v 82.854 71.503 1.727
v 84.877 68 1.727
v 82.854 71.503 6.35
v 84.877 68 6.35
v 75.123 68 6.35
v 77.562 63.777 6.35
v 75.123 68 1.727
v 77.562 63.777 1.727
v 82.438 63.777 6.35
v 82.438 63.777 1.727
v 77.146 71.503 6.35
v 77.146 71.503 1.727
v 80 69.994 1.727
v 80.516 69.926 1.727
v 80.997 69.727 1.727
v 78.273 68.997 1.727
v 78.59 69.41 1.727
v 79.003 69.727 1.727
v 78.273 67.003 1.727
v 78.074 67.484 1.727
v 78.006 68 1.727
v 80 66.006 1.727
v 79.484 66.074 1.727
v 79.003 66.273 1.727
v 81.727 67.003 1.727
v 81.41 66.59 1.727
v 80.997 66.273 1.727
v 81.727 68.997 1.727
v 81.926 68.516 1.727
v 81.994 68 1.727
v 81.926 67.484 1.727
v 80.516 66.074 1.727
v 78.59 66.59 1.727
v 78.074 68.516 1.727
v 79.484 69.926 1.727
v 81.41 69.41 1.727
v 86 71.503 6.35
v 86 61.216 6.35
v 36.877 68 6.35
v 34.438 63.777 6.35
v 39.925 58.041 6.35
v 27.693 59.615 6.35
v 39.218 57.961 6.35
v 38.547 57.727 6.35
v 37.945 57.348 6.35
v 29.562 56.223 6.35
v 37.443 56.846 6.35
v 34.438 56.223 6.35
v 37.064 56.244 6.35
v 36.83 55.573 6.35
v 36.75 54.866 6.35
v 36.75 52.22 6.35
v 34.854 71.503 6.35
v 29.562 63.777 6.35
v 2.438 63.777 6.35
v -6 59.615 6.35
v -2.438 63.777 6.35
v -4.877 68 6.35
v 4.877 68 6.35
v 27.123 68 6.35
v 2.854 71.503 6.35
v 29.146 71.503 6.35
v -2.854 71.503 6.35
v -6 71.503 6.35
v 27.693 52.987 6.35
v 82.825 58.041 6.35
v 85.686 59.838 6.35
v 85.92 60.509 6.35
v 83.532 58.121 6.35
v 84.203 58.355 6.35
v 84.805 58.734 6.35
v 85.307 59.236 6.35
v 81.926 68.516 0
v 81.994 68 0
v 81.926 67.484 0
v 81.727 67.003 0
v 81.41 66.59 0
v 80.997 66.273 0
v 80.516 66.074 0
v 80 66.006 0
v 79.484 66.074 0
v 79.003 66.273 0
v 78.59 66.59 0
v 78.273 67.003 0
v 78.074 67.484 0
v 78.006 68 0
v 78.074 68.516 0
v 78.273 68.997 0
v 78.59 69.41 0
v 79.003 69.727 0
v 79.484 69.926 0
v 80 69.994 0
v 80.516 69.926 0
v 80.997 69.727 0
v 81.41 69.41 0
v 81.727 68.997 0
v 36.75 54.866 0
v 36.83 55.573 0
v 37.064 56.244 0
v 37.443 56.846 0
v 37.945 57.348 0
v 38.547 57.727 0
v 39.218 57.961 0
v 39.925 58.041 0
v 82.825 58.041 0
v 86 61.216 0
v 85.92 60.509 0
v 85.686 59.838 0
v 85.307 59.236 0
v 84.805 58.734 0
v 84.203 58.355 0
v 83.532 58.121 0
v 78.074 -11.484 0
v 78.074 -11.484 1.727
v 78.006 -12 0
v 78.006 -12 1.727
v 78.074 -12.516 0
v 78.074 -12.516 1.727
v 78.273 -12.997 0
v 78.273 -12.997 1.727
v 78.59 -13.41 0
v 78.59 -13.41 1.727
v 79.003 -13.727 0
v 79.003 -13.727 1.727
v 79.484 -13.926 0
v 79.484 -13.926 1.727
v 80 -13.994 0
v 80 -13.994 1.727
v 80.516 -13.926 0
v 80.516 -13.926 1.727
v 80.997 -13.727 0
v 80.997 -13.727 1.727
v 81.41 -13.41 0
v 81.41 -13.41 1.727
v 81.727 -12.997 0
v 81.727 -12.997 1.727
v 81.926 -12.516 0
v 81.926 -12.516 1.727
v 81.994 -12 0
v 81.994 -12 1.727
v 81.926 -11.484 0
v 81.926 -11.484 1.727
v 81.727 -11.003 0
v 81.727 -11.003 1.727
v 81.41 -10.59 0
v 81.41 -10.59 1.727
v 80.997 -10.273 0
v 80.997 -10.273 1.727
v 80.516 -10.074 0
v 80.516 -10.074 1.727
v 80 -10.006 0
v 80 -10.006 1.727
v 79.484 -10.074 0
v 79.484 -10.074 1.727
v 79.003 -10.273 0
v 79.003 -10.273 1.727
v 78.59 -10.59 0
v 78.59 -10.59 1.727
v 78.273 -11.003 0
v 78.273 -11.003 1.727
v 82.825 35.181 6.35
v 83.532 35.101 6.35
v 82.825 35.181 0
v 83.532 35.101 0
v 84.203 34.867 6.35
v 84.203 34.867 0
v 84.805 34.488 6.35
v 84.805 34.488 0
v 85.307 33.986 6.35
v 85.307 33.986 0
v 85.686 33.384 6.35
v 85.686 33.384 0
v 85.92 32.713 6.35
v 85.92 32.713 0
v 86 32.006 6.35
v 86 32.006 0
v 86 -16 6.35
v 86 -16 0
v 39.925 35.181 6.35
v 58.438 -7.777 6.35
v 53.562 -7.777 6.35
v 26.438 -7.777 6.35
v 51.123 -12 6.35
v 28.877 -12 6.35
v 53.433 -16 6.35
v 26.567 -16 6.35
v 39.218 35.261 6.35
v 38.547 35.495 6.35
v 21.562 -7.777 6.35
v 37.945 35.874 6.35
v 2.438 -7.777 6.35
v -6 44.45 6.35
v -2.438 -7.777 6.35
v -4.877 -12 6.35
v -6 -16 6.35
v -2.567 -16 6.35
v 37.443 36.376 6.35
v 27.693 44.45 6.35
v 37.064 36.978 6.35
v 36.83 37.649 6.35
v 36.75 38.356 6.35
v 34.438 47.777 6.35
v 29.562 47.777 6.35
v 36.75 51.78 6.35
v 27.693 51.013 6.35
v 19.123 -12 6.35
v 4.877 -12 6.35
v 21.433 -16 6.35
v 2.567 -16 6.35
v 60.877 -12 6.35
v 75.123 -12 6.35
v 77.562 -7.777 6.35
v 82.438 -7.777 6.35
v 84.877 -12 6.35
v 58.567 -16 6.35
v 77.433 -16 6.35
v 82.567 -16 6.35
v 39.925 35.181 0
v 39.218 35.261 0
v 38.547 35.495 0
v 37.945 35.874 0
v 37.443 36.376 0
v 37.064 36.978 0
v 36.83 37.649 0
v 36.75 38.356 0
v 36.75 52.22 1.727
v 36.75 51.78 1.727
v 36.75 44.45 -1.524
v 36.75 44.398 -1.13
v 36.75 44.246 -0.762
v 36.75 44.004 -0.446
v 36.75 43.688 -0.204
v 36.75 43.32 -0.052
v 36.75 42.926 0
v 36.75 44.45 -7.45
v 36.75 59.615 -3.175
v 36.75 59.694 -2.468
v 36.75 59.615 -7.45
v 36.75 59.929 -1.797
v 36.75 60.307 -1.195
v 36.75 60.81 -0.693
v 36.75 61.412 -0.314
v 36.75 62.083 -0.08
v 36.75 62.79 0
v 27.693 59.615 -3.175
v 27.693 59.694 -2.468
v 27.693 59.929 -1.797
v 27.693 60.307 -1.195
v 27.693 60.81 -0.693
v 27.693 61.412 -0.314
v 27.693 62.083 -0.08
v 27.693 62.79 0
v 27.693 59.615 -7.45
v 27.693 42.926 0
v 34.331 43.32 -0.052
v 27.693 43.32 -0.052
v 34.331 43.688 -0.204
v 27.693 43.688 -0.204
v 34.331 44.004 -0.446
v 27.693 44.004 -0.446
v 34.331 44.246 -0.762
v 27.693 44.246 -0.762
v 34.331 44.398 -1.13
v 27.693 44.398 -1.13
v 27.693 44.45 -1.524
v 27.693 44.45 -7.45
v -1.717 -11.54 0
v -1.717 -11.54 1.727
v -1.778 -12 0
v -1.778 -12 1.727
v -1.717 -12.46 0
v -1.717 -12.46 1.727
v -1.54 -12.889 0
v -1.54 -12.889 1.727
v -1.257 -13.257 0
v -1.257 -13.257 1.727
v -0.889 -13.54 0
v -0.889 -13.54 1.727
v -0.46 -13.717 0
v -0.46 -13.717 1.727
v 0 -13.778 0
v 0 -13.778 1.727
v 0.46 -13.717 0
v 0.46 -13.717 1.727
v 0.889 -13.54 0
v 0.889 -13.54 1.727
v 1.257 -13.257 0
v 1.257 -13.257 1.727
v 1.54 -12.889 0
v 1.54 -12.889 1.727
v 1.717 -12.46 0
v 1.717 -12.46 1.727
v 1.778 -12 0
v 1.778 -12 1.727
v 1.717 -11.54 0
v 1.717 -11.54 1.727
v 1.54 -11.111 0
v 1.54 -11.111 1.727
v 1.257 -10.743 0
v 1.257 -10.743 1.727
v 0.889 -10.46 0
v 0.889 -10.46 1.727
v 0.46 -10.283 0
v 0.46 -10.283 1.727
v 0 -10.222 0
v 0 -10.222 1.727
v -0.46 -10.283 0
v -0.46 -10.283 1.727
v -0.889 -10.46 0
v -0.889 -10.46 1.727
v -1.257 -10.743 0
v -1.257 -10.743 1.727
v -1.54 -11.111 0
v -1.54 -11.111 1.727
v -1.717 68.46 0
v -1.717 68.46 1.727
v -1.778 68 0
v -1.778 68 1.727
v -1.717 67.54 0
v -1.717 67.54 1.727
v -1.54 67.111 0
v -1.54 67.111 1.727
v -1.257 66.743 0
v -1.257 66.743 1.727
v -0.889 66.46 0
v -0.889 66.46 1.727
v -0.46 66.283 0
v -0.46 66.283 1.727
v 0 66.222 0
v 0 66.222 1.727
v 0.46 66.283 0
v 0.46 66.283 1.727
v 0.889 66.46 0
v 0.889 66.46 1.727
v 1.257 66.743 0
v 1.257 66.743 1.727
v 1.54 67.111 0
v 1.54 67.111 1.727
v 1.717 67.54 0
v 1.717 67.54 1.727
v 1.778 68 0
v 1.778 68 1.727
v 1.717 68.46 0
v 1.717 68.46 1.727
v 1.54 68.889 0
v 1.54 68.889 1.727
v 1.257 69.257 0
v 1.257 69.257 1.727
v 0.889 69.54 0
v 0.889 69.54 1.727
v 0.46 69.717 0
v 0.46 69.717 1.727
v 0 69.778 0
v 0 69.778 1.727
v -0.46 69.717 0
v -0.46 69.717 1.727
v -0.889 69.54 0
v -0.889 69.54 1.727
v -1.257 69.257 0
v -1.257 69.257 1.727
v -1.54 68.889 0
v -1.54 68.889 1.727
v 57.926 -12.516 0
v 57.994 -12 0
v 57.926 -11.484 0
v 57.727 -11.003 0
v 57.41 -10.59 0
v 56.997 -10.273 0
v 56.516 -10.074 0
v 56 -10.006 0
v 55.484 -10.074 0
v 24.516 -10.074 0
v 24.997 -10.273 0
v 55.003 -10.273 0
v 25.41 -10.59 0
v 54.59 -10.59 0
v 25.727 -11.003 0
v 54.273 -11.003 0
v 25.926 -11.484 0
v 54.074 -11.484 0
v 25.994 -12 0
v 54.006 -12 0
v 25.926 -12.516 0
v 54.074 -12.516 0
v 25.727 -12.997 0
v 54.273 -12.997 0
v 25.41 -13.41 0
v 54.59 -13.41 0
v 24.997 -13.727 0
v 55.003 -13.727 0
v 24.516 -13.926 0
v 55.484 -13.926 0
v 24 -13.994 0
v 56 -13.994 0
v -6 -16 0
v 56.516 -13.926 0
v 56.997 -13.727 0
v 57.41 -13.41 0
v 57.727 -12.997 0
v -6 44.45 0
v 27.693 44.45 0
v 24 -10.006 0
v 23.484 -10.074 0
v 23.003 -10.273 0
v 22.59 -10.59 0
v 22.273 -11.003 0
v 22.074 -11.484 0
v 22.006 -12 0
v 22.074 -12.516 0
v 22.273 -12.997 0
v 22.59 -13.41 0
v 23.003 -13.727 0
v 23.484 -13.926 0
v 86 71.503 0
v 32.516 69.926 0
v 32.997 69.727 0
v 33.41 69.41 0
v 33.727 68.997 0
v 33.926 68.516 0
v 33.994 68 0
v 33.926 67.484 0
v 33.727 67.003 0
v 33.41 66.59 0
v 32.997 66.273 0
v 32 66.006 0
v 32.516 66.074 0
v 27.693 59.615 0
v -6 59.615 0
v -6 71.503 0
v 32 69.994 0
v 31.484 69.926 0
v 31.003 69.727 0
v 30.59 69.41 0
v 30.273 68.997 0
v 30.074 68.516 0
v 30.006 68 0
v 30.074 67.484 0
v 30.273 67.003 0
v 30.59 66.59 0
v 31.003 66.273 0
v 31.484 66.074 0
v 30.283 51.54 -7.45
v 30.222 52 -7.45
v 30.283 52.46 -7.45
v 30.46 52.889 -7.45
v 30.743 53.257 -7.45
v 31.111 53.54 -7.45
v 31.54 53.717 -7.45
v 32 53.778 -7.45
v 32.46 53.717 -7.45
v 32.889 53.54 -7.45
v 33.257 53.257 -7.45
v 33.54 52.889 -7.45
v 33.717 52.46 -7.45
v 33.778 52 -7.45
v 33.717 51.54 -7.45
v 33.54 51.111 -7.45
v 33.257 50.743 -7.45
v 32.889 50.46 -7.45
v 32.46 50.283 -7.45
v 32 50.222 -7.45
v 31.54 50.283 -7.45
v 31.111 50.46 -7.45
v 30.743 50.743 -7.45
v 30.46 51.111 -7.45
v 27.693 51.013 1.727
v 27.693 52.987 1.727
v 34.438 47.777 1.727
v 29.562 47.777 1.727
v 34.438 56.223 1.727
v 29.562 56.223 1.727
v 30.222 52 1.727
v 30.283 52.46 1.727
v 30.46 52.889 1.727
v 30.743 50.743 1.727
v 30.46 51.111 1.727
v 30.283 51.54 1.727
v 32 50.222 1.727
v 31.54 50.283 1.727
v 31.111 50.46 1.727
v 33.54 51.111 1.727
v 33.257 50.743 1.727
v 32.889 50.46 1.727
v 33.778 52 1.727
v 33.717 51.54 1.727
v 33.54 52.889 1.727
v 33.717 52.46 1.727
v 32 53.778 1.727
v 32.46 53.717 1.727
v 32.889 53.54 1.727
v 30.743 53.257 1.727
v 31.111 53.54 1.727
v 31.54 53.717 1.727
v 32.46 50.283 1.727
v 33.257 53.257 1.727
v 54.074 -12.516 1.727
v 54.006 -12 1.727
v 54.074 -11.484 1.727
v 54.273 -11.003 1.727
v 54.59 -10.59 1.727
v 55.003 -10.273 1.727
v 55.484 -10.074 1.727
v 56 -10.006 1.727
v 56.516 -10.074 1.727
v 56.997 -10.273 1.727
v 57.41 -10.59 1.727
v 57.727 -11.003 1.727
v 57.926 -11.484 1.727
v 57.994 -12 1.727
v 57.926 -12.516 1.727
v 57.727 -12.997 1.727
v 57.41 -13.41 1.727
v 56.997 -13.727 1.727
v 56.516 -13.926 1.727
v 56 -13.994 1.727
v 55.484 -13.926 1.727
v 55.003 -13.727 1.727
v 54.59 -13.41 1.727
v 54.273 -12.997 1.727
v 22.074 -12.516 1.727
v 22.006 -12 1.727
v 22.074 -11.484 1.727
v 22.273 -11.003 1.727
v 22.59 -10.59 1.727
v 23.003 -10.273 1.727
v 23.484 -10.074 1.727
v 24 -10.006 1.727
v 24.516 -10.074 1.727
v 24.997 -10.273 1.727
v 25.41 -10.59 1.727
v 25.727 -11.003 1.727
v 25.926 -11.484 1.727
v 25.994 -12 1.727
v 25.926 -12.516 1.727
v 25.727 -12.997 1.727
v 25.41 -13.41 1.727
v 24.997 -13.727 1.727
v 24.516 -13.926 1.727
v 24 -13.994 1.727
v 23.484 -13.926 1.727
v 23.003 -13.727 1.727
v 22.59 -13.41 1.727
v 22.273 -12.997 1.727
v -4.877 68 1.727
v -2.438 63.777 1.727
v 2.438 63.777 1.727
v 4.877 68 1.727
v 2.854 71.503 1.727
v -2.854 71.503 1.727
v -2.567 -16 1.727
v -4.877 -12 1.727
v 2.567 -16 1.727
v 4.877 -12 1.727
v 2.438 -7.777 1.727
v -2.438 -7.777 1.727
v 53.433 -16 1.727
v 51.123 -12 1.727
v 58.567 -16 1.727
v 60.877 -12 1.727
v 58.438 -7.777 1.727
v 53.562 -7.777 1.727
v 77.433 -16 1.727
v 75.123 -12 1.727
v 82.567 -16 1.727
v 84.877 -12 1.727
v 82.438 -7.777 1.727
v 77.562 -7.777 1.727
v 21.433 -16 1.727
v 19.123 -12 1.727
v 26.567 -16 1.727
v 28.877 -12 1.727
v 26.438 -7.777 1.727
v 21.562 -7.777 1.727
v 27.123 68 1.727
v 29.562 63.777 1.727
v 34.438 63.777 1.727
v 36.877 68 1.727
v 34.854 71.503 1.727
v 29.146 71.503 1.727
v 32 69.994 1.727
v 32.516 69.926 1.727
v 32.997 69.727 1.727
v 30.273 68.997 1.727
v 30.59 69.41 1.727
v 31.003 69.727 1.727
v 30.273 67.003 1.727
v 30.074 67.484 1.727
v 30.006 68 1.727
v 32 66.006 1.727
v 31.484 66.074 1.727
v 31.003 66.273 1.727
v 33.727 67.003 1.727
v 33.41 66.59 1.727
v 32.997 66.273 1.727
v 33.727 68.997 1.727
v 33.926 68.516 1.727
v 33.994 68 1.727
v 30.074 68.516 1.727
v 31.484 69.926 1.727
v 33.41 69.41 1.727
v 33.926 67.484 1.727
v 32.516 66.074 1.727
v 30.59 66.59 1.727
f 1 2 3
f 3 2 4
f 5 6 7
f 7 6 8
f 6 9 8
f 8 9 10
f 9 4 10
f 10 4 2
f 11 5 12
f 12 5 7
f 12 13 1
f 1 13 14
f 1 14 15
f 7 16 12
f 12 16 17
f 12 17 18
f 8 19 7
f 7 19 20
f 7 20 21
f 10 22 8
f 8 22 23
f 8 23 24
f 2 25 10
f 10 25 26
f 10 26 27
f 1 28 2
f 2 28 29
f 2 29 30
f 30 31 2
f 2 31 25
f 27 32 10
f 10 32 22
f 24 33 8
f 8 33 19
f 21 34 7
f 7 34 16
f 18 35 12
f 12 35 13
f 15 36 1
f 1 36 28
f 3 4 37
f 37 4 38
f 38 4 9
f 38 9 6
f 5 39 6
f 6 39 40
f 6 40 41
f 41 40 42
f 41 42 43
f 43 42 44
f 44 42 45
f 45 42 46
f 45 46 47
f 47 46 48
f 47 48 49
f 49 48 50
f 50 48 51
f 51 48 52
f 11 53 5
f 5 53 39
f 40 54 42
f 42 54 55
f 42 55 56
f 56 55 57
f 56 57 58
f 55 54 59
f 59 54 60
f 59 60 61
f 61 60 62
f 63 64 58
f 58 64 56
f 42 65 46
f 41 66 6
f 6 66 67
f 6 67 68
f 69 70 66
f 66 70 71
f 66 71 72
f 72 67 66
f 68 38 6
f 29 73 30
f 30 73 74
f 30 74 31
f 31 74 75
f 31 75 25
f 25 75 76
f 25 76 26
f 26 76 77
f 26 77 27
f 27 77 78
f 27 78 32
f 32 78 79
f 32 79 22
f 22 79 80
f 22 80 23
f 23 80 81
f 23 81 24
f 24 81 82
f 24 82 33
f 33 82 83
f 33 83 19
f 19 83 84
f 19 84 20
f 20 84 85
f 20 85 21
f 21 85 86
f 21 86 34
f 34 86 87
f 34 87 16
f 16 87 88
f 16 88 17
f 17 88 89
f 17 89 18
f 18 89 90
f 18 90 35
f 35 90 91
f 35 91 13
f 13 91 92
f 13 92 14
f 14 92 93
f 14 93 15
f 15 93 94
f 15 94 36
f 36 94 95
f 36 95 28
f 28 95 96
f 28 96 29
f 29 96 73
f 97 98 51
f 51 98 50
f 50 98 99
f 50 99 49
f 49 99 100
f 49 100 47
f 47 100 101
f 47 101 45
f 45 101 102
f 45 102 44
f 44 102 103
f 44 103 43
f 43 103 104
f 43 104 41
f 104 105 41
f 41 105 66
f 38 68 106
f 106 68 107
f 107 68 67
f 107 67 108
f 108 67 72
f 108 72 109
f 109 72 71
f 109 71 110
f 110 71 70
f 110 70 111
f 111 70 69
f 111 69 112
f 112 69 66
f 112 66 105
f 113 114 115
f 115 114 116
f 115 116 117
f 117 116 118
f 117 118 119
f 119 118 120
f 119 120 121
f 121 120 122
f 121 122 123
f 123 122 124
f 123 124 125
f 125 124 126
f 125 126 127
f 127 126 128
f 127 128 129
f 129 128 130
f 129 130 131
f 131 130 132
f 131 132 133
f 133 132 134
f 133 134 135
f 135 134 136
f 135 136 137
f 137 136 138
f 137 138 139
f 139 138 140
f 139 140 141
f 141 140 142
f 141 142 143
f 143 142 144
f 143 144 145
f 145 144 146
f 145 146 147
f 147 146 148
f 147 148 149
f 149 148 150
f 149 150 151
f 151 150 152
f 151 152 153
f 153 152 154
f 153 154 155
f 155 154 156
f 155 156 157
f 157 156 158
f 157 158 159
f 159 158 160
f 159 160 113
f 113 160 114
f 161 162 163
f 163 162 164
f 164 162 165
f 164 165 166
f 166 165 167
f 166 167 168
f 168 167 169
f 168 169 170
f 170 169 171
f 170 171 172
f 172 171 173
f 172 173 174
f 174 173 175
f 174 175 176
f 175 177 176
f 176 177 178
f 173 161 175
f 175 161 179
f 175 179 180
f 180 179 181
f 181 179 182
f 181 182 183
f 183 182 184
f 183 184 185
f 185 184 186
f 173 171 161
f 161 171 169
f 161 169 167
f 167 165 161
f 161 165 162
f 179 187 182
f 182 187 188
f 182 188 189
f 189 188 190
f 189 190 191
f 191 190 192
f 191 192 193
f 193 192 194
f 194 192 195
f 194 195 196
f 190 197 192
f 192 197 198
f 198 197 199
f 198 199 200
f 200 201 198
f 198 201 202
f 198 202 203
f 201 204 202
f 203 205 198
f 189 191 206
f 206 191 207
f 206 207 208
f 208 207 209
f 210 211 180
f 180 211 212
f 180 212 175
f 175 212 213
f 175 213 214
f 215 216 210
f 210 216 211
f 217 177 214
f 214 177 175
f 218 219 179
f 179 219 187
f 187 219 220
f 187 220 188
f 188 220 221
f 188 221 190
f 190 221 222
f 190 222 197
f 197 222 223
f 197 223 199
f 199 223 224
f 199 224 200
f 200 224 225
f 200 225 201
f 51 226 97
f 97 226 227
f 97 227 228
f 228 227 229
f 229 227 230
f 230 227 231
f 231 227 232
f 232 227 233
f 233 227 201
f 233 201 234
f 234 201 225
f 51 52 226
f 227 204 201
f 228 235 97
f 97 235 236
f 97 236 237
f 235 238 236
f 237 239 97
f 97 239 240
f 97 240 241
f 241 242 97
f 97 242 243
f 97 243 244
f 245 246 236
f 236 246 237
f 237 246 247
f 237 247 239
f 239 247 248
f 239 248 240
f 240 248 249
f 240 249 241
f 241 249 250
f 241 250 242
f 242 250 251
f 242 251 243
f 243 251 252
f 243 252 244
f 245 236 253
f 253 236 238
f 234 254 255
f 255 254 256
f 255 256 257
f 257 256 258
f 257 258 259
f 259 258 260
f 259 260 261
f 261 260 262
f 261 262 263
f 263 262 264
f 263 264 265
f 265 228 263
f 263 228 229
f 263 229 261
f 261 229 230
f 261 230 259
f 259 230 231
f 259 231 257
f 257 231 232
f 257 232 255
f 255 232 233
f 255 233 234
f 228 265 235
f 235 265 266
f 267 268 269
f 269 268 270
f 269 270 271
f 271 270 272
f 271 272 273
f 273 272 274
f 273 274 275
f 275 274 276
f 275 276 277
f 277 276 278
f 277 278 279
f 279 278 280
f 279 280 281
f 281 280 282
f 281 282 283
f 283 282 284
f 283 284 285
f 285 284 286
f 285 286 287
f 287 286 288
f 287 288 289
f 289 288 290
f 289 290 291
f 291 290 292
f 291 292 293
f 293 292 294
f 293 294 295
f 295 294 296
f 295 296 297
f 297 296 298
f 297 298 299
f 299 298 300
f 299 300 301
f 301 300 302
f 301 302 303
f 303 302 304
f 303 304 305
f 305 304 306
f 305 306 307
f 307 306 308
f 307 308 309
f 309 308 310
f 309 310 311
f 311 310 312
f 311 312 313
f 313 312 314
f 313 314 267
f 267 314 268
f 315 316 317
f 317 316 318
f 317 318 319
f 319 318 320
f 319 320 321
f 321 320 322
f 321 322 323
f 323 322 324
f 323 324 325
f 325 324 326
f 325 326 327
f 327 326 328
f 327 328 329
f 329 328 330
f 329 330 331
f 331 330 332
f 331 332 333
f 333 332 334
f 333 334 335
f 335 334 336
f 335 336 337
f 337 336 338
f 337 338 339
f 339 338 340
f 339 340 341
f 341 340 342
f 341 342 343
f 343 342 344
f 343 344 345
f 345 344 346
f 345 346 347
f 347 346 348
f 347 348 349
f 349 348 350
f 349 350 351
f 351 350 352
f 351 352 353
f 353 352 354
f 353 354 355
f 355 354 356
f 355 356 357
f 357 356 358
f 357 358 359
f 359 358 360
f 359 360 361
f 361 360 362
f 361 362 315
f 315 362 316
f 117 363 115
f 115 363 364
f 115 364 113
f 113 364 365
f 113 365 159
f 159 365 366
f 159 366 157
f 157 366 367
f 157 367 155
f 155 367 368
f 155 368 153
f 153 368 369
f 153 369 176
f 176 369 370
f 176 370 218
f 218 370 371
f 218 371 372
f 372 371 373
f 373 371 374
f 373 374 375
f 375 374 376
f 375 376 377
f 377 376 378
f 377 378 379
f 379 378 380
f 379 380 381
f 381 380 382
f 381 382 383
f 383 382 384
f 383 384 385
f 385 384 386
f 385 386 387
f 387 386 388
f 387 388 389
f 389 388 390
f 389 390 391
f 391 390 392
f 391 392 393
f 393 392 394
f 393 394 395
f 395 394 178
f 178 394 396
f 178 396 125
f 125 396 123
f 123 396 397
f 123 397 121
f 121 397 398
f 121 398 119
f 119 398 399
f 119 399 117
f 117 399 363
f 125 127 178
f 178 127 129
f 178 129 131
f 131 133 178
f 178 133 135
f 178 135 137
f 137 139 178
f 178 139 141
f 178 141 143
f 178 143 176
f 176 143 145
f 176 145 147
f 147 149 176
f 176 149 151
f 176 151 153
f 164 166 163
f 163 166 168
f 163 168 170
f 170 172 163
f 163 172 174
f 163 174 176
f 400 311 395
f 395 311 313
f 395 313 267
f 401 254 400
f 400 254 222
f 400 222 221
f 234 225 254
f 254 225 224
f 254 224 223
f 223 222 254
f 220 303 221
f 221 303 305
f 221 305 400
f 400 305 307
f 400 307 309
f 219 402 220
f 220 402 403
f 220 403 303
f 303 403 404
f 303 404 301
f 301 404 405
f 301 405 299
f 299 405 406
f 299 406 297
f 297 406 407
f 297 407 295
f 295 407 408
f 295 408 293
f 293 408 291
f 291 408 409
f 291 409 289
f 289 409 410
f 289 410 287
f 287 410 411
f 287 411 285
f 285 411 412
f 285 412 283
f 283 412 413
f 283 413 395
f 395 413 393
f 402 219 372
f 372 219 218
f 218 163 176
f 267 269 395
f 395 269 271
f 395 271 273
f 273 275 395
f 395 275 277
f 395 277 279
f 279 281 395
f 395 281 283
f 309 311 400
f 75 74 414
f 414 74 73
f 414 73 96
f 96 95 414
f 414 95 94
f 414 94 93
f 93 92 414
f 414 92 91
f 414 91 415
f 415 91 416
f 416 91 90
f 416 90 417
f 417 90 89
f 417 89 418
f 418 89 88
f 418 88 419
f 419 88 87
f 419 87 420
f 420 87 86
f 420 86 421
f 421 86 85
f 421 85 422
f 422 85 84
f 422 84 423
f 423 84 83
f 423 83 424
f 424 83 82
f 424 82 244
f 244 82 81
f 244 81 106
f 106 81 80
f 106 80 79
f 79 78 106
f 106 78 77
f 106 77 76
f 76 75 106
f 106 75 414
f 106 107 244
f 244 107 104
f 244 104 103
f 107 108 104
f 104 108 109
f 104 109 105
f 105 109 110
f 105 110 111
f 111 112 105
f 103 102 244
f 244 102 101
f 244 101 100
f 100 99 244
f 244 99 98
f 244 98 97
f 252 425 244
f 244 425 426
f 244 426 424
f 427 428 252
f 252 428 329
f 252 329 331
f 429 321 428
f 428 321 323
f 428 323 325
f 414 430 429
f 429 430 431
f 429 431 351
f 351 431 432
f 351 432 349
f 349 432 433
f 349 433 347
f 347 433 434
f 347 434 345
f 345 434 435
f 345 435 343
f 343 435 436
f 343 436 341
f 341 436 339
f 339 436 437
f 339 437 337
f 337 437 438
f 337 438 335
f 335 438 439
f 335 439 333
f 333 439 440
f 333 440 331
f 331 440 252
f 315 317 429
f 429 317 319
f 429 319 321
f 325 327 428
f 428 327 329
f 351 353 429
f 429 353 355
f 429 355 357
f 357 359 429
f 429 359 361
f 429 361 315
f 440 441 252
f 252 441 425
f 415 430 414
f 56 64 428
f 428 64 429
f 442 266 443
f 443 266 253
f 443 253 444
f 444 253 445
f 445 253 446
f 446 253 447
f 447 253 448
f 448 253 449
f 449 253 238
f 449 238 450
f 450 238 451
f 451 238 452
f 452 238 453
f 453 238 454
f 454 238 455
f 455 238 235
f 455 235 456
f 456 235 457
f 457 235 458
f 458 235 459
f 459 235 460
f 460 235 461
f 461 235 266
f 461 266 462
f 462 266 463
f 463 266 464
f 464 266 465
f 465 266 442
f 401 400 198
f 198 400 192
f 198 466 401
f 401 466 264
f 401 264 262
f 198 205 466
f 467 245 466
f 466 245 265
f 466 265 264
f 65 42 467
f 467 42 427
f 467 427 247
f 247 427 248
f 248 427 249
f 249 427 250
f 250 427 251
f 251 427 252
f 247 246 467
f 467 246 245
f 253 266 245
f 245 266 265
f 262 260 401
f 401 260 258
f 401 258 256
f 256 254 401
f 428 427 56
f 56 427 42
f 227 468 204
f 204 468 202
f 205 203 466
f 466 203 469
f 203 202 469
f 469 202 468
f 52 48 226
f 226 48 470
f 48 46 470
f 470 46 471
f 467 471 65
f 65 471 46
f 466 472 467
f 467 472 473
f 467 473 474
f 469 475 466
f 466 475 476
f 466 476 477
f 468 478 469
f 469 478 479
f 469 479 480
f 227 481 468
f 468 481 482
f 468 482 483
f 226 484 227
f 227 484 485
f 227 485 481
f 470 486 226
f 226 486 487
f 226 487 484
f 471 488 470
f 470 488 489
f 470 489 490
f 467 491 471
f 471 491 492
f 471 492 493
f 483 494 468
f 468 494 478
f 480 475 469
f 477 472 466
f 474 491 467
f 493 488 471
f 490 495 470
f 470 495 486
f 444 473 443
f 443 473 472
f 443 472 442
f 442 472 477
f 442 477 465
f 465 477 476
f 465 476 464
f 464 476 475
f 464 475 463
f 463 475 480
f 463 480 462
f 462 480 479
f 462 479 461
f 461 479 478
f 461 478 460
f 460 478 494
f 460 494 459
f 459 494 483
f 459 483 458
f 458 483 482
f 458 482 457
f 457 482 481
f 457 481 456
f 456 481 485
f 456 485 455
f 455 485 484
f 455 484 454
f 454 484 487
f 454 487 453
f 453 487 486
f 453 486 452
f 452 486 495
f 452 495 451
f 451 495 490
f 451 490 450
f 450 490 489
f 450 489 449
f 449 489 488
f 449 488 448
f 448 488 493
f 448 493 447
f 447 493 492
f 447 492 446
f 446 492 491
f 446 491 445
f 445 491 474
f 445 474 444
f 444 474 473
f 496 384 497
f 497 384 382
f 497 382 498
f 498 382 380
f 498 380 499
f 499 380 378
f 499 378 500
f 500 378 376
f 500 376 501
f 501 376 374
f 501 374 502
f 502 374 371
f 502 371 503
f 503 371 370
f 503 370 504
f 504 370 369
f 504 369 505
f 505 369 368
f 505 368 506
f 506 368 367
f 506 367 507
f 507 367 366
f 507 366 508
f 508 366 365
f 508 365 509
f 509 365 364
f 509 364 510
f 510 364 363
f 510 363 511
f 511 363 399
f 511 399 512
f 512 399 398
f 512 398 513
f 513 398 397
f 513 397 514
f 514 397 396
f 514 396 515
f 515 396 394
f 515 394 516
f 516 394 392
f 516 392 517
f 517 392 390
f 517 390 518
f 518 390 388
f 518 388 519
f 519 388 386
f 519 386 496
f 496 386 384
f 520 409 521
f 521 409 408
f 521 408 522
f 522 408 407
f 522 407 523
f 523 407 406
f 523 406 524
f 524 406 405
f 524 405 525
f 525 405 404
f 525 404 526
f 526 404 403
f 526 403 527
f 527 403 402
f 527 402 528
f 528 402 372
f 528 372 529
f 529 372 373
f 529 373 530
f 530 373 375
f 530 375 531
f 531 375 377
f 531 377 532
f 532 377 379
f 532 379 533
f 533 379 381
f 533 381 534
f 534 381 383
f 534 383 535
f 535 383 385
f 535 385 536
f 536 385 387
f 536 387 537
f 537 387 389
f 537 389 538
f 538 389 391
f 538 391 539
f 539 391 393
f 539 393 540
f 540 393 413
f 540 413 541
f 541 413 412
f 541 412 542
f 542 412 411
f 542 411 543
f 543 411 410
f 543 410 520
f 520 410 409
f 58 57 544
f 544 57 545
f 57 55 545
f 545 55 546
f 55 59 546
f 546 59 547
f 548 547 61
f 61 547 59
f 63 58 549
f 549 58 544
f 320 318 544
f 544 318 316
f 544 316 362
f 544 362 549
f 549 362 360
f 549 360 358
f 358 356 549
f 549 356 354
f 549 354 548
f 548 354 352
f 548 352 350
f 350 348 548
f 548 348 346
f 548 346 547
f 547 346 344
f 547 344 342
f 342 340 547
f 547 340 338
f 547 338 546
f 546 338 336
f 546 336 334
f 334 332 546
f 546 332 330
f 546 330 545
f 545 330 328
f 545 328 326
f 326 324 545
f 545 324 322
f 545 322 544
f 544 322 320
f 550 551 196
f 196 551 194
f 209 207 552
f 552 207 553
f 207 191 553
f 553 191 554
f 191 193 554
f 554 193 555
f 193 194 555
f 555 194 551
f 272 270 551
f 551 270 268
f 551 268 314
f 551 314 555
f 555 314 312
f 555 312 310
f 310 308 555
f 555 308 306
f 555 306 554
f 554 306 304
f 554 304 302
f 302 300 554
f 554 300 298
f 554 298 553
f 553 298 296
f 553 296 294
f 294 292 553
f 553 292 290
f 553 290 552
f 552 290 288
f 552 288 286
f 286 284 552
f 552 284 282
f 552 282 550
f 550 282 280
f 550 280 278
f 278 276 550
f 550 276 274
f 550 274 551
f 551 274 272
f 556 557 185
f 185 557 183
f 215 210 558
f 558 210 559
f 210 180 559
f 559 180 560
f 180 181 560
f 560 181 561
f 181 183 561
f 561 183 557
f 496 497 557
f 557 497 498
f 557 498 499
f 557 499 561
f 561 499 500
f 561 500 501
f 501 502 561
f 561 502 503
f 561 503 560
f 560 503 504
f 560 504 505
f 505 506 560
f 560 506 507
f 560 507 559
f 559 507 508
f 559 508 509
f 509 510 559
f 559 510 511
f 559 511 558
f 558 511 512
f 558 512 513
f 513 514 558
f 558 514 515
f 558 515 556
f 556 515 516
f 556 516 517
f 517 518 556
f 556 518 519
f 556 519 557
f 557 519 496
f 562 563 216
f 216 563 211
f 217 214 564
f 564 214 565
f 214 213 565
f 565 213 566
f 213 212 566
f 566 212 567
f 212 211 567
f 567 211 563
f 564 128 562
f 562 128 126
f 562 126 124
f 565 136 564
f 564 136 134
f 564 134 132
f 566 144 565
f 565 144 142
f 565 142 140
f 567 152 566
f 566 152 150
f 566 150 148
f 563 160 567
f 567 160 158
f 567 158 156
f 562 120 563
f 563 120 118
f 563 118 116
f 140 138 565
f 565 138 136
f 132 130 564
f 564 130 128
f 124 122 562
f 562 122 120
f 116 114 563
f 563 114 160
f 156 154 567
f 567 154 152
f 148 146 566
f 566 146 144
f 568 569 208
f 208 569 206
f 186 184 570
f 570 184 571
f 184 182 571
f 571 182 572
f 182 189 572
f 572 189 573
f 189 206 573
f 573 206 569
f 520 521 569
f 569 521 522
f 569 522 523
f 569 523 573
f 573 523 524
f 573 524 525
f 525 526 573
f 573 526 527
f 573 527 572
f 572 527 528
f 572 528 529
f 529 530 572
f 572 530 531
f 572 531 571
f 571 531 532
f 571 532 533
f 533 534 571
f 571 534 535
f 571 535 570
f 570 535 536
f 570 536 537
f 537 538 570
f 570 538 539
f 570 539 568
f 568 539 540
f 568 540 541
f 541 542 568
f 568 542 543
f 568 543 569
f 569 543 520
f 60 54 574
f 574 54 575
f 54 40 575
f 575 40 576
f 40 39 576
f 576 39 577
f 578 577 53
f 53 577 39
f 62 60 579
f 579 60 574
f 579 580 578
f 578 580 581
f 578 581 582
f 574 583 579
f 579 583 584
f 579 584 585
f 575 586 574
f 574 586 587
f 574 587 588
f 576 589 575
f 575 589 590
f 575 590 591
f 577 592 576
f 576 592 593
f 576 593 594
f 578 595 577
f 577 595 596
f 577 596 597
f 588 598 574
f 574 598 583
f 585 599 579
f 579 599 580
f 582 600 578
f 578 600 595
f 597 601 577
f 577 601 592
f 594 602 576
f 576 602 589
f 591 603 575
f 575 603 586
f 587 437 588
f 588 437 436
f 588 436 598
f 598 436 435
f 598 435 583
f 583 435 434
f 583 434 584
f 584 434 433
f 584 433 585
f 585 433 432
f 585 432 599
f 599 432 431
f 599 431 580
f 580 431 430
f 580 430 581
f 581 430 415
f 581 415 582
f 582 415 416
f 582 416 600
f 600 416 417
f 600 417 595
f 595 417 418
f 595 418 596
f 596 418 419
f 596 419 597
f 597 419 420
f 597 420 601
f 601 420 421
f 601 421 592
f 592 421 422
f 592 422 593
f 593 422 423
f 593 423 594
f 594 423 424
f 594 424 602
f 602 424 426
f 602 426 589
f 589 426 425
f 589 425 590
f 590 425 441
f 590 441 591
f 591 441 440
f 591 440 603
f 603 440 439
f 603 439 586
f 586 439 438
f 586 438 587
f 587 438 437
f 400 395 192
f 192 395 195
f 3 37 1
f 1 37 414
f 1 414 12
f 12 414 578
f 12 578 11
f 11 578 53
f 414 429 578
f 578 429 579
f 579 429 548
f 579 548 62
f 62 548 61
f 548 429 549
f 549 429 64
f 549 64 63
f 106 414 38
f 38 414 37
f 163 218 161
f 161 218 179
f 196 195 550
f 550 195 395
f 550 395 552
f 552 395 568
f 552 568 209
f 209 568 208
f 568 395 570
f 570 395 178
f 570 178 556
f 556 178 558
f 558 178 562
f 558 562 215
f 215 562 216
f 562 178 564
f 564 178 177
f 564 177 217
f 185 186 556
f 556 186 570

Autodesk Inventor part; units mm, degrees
ref_plane "YZ Plane" through (0, 0, 0) normal (1, 0, 0) x (0, 1, 0)
ref_plane "XZ Plane" through (0, 0, 0) normal (0, 1, 0) x (-1, 0, 0)
ref_plane "Work Plane1" through (0, 0, 0) normal (0, 0, 1) x (1, 0, 0)
sketch "Sketch1" plane through (0, 0, 0) normal (0, 0, 1) x (1, 0, 0)
  line L0 (86, -8) -> (86, -12) construction
  line L1 (116, -16) -> (-164, -16) construction
  line L2 (116, 72) -> (-164, 72) construction
  line L3 (-6, 68) -> (-6, 64) construction
  line L4 (86, -16) -> (-6, -16)
  line L5 (-6, -16) -> (-6, 71.503)
  line L6 (-6, 71.503) -> (36.75, 71.503)
  line L7 (86, 35.181) -> (86, -16)
  line L8 (58.1676, 40.25) -> (85.5305, 40.25) construction
  line L9 (36.75, 47.9255) -> (36.75, 56.0811) construction
  line L10 (86, 35.181) -> (36.75, 35.181)
  line L11 (36.75, 35.181) -> (36.75, 58.041)
  line L12 (36.75, 71.503) -> (86, 71.503)
  line L13 (86, 71.503) -> (86, 58.041)
  line L14 (86, 58.041) -> (36.75, 58.041)
  point P0 (0, 0)
  dimension "d0" = 87.503
  dimension "d71" = 13.462
extrude "Extrusion1" add sketch "Sketch1" along normal blind 6.35
sketch "Sketch3" plane through (0, 0, 6.35) normal (0, 0, 1) x (1, 0, 0)
  circle A0 centre (32, 68) radius 2 construction
  point P0 (0, 0)
hole "Hole2" at (32, 68, 6.35) direction (0, 0, -1) diameter 3.9878 end through all
sketch "Sketch4" plane through (0, 0, 6.35) normal (0, 0, 1) x (1, 0, 0)
  circle A0 centre (80, -12) radius 2 construction
  circle A1 centre (80, -12) radius 4.8768 construction
  circle A2 centre (0, -12) radius 2 construction
  circle A3 centre (0, 68) radius 2 construction
  circle A4 centre (32, 68) radius 2 construction
  circle A5 centre (0, -12) radius 4.8768 construction
  circle A6 centre (0, 68) radius 1.9939 construction
  circle A7 centre (0, 68) radius 4.8768 construction
  circle A8 centre (32, 68) radius 1.9939 construction
  circle A9 centre (32, 68) radius 4.8768 construction
  circle A10 centre (24, -12) radius 2 construction
  circle A11 centre (56, -12) radius 2 construction
  circle A12 centre (56, -12) radius 4.8768 construction
  circle A13 centre (24, -12) radius 4.8768 construction
  circle A14 centre (80, -12) radius 1.9939 projected
  line L0 (75.1232, -12) -> (77.5616, -7.7766)
  line L1 (77.5616, -7.7766) -> (82.4384, -7.7766)
  line L2 (82.4384, -7.7766) -> (84.8768, -12)
  line L3 (84.8768, -12) -> (82.4384, -16.2234)
  line L4 (82.4384, -16.2234) -> (77.5616, -16.2234)
  line L5 (77.5616, -16.2234) -> (75.1232, -12)
  line L6 (51.1232, -12) -> (53.5616, -7.7766)
  line L7 (53.5616, -7.7766) -> (58.4384, -7.7766)
  line L8 (58.4384, -7.7766) -> (60.8768, -12)
  line L9 (60.8768, -12) -> (58.4384, -16.2234)
  line L10 (58.4384, -16.2234) -> (53.5616, -16.2234)
  line L11 (53.5616, -16.2234) -> (51.1232, -12)
  line L12 (19.1232, -12) -> (21.5616, -7.7766)
  line L13 (21.5616, -7.7766) -> (26.4384, -7.7766)
  line L14 (26.4384, -7.7766) -> (28.8768, -12)
  line L15 (28.8768, -12) -> (26.4384, -16.2234)
  line L16 (26.4384, -16.2234) -> (21.5616, -16.2234)
  line L17 (21.5616, -16.2234) -> (19.1232, -12)
  line L18 (-4.8768, -12) -> (-2.4384, -7.7766)
  line L19 (-2.4384, -7.7766) -> (2.4384, -7.7766)
  line L20 (2.4384, -7.7766) -> (4.8768, -12)
  line L21 (4.8768, -12) -> (2.4384, -16.2234)
  line L22 (2.4384, -16.2234) -> (-2.4384, -16.2234)
  line L23 (-2.4384, -16.2234) -> (-4.8768, -12)
  line L24 (27.1232, 68) -> (29.5616, 72.2234)
  line L25 (29.5616, 72.2234) -> (34.4384, 72.2234)
  line L26 (34.4384, 72.2234) -> (36.8768, 68)
  line L27 (36.8768, 68) -> (34.4384, 63.7766)
  line L28 (34.4384, 63.7766) -> (29.5616, 63.7766)
  line L29 (29.5616, 63.7766) -> (27.1232, 68)
  line L30 (-4.8768, 68) -> (-2.4384, 72.2234)
  line L31 (-2.4384, 72.2234) -> (2.4384, 72.2234)
  line L32 (2.4384, 72.2234) -> (4.8768, 68)
  line L33 (4.8768, 68) -> (2.4384, 63.7766)
  line L34 (2.4384, 63.7766) -> (-2.4384, 63.7766)
  line L35 (-2.4384, 63.7766) -> (-4.8768, 68)
  point P0 (0, 0)
  dimension "d18" = 9.7536
  dimension "d21" = 9.7536
  dimension "d22" = 9.7536
  dimension "d23" = 9.7536
  dimension "d24" = 9.7536
  dimension "d25" = 9.7536
extrude "Extrusion2" cut sketch "Sketch4" against normal blind 4.6228
sketch "Sketch5" plane through (0, 0, 6.35) normal (0, 0, 1) x (1, 0, 0)
  circle A0 centre (56, -12) radius 2 construction
  circle A1 centre (24, -12) radius 2 construction
  point P0 (0, 0)
hole "Hole3" at (56, -12, 6.35) at (24, -12, 6.35) direction (0, 0, -1) diameter 3.9878 end through all
sketch "Sketch6" plane through (0, 0, 6.35) normal (0, 0, 1) x (1, 0, 0)
  circle A0 centre (32, 52) radius 1.8 construction
  line L0 (25.6709, 58.1897) -> (15.8763, 58.1897) construction
  line L1 (15.8763, 45.8103) -> (25.6716, 45.8103) construction
  line L2 (26.268, 46.528) -> (26.268, 49.5214) construction
  line L3 (5.9638, 51.1237) -> (5.9638, 48.0771) construction
  circle A1 centre (32, 52) radius 1.778
  circle A2 centre (32, 52) radius 4.8768 construction
  line L4 (27.1232, 52) -> (29.5616, 56.2234)
  line L5 (29.5616, 56.2234) -> (34.4384, 56.2234)
  line L6 (34.4384, 56.2234) -> (36.8768, 52)
  line L7 (36.8768, 52) -> (34.4384, 47.7766)
  line L8 (34.4384, 47.7766) -> (29.5616, 47.7766)
  line L9 (29.5616, 47.7766) -> (27.1232, 52)
  line L10 (26.268, 45.875) -> (5.9638, 45.875)
  line L11 (5.9638, 45.875) -> (5.9638, 58.1897)
  line L12 (5.9638, 58.1897) -> (26.268, 58.1897)
  line L13 (26.268, 58.1897) -> (26.268, 45.875)
  line L14 (4.5388, 44.45) -> (27.693, 44.45)
  line L15 (27.693, 44.45) -> (27.693, 59.6147)
  line L16 (27.693, 59.6147) -> (4.5388, 59.6147)
  line L17 (4.5388, 59.6147) -> (4.5388, 44.45)
  line L18 (27.693, 44.45) -> (4.5388, 44.45)
  line L19 (4.5388, 44.45) -> (4.5388, 59.6147)
  line L20 (4.5388, 59.6147) -> (27.693, 59.6147)
  line L21 (27.693, 59.6147) -> (27.693, 44.45)
  line L22 (-6, 71.503) -> (-6, -16) construction
  line L23 (4.5388, 59.6147) -> (-6, 59.6147)
  line L24 (-6, 59.6147) -> (-6, 44.45)
  line L25 (-6, 44.45) -> (4.5388, 44.45)
  line L26 (4.5388, 44.45) -> (4.5388, 59.6147)
  circle A3 centre (0, -12) radius 2 construction
  circle A4 centre (0, 68) radius 2 construction
  circle A5 centre (80, -12) radius 2 construction
  point P0 (0, 0)
  dimension "d36" = 9.7536
  dimension "d35" = 3.556
  dimension "d48" = 1.425
hole "Hole4" at (32, 52, 6.35) direction (0, 0, -1) diameter 3.556 end through all
extrude "Extrusion3" cut sketch "Sketch6" against normal blind 4.6228 contours L4 L15 L9 | L4 L5 L6 L7 L8 L9 L15
extrude "Extrusion4" cut sketch "Sketch6" against normal through all contours L10 L11 L12 L13
extrude "Extrusion5" cut sketch "Sketch6" against normal through all contours L9 L15 L14 L17 L16 L4 | L4 L15 L9
sketch "Sketch7" plane through (0, 0, 0) normal (0, 0, -1) x (-1, 0, 0)
  line L0 (-27.693, 59.6147) -> (-4.5388, 59.6147) projected
  line L1 (-4.5388, 59.6147) -> (-4.5388, 44.45) projected
  line L2 (-4.5388, 44.45) -> (-27.693, 44.45) projected
  line L3 (-27.693, 44.45) -> (-27.693, 59.6147) projected
  circle A0 centre (-32, 52) radius 1.778 projected
  circle A1 centre (-56, -12) radius 1.9939 projected
  circle A2 centre (-24, -12) radius 1.9939 projected
  circle A3 centre (-32, 68) radius 1.9939 projected
  line L4 (-86, -16) -> (6, -16) projected
  line L5 (6, -16) -> (6, 71.503) projected
  line L6 (6, 71.503) -> (-86, 71.503) projected
  line L7 (-36.75, 58.041) -> (-36.75, 35.181) projected
  line L8 (-36.75, 35.181) -> (-86, 35.181) projected
  line L9 (-86, 35.181) -> (-86, -16) projected
  line L10 (1.3245, 44.5) -> (-33.3311, 44.5) construction
  line L11 (-33.3245, 59.5) -> (1.3311, 59.5) construction
  line L12 (-27.693, 44.45) -> (-27.693, 59.6147) construction
  line L13 (-27.693, 44.45) -> (-4.5388, 44.45) projected
  line L14 (-36.75, 52.2196) -> (-36.75, 58.041) projected
  line L15 (-27.693, 44.45) -> (-36.75, 44.45)
  line L16 (-36.75, 44.45) -> (-36.75, 59.6147)
  line L17 (-36.75, 59.6147) -> (-27.693, 59.6147)
  line L18 (-27.693, 59.6147) -> (-27.693, 44.45)
  line L19 (-86, 71.503) -> (-86, 58.041) projected
  line L20 (-86, 58.041) -> (-36.75, 58.041) projected
  point P0 (0, 0)
  point P1 (-36.75, 67.7804)
ref_plane "Work Plane2" through (27.2145, 45.1271, -7.45) normal (0, 0, 1) x (1, 0, 0)
extrude "Extrusion6" add sketch "Sketch7" along normal up to surface (7.45 mm away) contours L3 L15 L7 L16 L17
sketch "Sketch8" plane through (-6, -16, 0) normal (-1, 0, 0) x (0, 0, 1)
  point P0 (0, 16)
extrude "Extrusion7" cut sketch "Sketch6" against normal through all contours L17 L25 L24 L23
hole "Hole5" at (80, -12, 6.35) at (0, -12, 6.35) at (0, 68, 6.35) direction (0, 0, -1) diameter 3.556 end through all
fillet "Fillet1" radius 1.524 1 edges at (32.2215, 44.45, 0)
fillet "Fillet2" radius 3.175 3 edges at (32.2215, 59.6147, 0) (36.75, 35.181, 3.175) (86, 35.181, 3.175)
hole "Hole6" at (80, -12, 6.35) direction (0, 0, -1) diameter 3.9878 end through all
fillet "Fillet3" radius 3.175 1 edges at (86, 58.041, 3.175)
fillet "Fillet4" radius 3.175 1 edges at (36.75, 58.041, 3.175)
sketch "Sketch9" plane through (0, 0, 6.35) normal (0, 0, 1) x (1, 0, 0)
  circle A0 centre (80, 68) radius 2 construction
  circle A1 centre (80, 68) radius 4.8768 construction
  line L0 (75.1232, 68) -> (77.5616, 72.2234)
  line L1 (77.5616, 72.2234) -> (82.4384, 72.2234)
  line L2 (82.4384, 72.2234) -> (84.8768, 68)
  line L3 (84.8768, 68) -> (82.4384, 63.7766)
  line L4 (82.4384, 63.7766) -> (77.5616, 63.7766)
  line L5 (77.5616, 63.7766) -> (75.1232, 68)
  circle A2 centre (80, 68) radius 1.9939
  point P0 (0, 0)
  dimension "d74" = 9.7536
  dimension "d75" = 3.9878
extrude "Extrusion8" cut sketch "Sketch9" against normal through all contours A2
sketch "Sketch10" plane through (0, 0, 6.35) normal (0, 0, 1) x (1, 0, 0)
  circle A0 centre (80, 68) radius 1.9939 construction
  circle A1 centre (80, 68) radius 4.8768 construction
  line L0 (75.1232, 68) -> (77.5616, 72.2234)
  line L1 (77.5616, 72.2234) -> (82.4384, 72.2234)
  line L2 (82.4384, 72.2234) -> (84.8768, 68)
  line L3 (84.8768, 68) -> (82.4384, 63.7766)
  line L4 (82.4384, 63.7766) -> (77.5616, 63.7766)
  line L5 (77.5616, 63.7766) -> (75.1232, 68)
  point P0 (0, 0)
  dimension "d78" = 9.7536
extrude "Extrusion9" cut sketch "Sketch10" against normal blind 4.6228
properties part number "SensorWall"
